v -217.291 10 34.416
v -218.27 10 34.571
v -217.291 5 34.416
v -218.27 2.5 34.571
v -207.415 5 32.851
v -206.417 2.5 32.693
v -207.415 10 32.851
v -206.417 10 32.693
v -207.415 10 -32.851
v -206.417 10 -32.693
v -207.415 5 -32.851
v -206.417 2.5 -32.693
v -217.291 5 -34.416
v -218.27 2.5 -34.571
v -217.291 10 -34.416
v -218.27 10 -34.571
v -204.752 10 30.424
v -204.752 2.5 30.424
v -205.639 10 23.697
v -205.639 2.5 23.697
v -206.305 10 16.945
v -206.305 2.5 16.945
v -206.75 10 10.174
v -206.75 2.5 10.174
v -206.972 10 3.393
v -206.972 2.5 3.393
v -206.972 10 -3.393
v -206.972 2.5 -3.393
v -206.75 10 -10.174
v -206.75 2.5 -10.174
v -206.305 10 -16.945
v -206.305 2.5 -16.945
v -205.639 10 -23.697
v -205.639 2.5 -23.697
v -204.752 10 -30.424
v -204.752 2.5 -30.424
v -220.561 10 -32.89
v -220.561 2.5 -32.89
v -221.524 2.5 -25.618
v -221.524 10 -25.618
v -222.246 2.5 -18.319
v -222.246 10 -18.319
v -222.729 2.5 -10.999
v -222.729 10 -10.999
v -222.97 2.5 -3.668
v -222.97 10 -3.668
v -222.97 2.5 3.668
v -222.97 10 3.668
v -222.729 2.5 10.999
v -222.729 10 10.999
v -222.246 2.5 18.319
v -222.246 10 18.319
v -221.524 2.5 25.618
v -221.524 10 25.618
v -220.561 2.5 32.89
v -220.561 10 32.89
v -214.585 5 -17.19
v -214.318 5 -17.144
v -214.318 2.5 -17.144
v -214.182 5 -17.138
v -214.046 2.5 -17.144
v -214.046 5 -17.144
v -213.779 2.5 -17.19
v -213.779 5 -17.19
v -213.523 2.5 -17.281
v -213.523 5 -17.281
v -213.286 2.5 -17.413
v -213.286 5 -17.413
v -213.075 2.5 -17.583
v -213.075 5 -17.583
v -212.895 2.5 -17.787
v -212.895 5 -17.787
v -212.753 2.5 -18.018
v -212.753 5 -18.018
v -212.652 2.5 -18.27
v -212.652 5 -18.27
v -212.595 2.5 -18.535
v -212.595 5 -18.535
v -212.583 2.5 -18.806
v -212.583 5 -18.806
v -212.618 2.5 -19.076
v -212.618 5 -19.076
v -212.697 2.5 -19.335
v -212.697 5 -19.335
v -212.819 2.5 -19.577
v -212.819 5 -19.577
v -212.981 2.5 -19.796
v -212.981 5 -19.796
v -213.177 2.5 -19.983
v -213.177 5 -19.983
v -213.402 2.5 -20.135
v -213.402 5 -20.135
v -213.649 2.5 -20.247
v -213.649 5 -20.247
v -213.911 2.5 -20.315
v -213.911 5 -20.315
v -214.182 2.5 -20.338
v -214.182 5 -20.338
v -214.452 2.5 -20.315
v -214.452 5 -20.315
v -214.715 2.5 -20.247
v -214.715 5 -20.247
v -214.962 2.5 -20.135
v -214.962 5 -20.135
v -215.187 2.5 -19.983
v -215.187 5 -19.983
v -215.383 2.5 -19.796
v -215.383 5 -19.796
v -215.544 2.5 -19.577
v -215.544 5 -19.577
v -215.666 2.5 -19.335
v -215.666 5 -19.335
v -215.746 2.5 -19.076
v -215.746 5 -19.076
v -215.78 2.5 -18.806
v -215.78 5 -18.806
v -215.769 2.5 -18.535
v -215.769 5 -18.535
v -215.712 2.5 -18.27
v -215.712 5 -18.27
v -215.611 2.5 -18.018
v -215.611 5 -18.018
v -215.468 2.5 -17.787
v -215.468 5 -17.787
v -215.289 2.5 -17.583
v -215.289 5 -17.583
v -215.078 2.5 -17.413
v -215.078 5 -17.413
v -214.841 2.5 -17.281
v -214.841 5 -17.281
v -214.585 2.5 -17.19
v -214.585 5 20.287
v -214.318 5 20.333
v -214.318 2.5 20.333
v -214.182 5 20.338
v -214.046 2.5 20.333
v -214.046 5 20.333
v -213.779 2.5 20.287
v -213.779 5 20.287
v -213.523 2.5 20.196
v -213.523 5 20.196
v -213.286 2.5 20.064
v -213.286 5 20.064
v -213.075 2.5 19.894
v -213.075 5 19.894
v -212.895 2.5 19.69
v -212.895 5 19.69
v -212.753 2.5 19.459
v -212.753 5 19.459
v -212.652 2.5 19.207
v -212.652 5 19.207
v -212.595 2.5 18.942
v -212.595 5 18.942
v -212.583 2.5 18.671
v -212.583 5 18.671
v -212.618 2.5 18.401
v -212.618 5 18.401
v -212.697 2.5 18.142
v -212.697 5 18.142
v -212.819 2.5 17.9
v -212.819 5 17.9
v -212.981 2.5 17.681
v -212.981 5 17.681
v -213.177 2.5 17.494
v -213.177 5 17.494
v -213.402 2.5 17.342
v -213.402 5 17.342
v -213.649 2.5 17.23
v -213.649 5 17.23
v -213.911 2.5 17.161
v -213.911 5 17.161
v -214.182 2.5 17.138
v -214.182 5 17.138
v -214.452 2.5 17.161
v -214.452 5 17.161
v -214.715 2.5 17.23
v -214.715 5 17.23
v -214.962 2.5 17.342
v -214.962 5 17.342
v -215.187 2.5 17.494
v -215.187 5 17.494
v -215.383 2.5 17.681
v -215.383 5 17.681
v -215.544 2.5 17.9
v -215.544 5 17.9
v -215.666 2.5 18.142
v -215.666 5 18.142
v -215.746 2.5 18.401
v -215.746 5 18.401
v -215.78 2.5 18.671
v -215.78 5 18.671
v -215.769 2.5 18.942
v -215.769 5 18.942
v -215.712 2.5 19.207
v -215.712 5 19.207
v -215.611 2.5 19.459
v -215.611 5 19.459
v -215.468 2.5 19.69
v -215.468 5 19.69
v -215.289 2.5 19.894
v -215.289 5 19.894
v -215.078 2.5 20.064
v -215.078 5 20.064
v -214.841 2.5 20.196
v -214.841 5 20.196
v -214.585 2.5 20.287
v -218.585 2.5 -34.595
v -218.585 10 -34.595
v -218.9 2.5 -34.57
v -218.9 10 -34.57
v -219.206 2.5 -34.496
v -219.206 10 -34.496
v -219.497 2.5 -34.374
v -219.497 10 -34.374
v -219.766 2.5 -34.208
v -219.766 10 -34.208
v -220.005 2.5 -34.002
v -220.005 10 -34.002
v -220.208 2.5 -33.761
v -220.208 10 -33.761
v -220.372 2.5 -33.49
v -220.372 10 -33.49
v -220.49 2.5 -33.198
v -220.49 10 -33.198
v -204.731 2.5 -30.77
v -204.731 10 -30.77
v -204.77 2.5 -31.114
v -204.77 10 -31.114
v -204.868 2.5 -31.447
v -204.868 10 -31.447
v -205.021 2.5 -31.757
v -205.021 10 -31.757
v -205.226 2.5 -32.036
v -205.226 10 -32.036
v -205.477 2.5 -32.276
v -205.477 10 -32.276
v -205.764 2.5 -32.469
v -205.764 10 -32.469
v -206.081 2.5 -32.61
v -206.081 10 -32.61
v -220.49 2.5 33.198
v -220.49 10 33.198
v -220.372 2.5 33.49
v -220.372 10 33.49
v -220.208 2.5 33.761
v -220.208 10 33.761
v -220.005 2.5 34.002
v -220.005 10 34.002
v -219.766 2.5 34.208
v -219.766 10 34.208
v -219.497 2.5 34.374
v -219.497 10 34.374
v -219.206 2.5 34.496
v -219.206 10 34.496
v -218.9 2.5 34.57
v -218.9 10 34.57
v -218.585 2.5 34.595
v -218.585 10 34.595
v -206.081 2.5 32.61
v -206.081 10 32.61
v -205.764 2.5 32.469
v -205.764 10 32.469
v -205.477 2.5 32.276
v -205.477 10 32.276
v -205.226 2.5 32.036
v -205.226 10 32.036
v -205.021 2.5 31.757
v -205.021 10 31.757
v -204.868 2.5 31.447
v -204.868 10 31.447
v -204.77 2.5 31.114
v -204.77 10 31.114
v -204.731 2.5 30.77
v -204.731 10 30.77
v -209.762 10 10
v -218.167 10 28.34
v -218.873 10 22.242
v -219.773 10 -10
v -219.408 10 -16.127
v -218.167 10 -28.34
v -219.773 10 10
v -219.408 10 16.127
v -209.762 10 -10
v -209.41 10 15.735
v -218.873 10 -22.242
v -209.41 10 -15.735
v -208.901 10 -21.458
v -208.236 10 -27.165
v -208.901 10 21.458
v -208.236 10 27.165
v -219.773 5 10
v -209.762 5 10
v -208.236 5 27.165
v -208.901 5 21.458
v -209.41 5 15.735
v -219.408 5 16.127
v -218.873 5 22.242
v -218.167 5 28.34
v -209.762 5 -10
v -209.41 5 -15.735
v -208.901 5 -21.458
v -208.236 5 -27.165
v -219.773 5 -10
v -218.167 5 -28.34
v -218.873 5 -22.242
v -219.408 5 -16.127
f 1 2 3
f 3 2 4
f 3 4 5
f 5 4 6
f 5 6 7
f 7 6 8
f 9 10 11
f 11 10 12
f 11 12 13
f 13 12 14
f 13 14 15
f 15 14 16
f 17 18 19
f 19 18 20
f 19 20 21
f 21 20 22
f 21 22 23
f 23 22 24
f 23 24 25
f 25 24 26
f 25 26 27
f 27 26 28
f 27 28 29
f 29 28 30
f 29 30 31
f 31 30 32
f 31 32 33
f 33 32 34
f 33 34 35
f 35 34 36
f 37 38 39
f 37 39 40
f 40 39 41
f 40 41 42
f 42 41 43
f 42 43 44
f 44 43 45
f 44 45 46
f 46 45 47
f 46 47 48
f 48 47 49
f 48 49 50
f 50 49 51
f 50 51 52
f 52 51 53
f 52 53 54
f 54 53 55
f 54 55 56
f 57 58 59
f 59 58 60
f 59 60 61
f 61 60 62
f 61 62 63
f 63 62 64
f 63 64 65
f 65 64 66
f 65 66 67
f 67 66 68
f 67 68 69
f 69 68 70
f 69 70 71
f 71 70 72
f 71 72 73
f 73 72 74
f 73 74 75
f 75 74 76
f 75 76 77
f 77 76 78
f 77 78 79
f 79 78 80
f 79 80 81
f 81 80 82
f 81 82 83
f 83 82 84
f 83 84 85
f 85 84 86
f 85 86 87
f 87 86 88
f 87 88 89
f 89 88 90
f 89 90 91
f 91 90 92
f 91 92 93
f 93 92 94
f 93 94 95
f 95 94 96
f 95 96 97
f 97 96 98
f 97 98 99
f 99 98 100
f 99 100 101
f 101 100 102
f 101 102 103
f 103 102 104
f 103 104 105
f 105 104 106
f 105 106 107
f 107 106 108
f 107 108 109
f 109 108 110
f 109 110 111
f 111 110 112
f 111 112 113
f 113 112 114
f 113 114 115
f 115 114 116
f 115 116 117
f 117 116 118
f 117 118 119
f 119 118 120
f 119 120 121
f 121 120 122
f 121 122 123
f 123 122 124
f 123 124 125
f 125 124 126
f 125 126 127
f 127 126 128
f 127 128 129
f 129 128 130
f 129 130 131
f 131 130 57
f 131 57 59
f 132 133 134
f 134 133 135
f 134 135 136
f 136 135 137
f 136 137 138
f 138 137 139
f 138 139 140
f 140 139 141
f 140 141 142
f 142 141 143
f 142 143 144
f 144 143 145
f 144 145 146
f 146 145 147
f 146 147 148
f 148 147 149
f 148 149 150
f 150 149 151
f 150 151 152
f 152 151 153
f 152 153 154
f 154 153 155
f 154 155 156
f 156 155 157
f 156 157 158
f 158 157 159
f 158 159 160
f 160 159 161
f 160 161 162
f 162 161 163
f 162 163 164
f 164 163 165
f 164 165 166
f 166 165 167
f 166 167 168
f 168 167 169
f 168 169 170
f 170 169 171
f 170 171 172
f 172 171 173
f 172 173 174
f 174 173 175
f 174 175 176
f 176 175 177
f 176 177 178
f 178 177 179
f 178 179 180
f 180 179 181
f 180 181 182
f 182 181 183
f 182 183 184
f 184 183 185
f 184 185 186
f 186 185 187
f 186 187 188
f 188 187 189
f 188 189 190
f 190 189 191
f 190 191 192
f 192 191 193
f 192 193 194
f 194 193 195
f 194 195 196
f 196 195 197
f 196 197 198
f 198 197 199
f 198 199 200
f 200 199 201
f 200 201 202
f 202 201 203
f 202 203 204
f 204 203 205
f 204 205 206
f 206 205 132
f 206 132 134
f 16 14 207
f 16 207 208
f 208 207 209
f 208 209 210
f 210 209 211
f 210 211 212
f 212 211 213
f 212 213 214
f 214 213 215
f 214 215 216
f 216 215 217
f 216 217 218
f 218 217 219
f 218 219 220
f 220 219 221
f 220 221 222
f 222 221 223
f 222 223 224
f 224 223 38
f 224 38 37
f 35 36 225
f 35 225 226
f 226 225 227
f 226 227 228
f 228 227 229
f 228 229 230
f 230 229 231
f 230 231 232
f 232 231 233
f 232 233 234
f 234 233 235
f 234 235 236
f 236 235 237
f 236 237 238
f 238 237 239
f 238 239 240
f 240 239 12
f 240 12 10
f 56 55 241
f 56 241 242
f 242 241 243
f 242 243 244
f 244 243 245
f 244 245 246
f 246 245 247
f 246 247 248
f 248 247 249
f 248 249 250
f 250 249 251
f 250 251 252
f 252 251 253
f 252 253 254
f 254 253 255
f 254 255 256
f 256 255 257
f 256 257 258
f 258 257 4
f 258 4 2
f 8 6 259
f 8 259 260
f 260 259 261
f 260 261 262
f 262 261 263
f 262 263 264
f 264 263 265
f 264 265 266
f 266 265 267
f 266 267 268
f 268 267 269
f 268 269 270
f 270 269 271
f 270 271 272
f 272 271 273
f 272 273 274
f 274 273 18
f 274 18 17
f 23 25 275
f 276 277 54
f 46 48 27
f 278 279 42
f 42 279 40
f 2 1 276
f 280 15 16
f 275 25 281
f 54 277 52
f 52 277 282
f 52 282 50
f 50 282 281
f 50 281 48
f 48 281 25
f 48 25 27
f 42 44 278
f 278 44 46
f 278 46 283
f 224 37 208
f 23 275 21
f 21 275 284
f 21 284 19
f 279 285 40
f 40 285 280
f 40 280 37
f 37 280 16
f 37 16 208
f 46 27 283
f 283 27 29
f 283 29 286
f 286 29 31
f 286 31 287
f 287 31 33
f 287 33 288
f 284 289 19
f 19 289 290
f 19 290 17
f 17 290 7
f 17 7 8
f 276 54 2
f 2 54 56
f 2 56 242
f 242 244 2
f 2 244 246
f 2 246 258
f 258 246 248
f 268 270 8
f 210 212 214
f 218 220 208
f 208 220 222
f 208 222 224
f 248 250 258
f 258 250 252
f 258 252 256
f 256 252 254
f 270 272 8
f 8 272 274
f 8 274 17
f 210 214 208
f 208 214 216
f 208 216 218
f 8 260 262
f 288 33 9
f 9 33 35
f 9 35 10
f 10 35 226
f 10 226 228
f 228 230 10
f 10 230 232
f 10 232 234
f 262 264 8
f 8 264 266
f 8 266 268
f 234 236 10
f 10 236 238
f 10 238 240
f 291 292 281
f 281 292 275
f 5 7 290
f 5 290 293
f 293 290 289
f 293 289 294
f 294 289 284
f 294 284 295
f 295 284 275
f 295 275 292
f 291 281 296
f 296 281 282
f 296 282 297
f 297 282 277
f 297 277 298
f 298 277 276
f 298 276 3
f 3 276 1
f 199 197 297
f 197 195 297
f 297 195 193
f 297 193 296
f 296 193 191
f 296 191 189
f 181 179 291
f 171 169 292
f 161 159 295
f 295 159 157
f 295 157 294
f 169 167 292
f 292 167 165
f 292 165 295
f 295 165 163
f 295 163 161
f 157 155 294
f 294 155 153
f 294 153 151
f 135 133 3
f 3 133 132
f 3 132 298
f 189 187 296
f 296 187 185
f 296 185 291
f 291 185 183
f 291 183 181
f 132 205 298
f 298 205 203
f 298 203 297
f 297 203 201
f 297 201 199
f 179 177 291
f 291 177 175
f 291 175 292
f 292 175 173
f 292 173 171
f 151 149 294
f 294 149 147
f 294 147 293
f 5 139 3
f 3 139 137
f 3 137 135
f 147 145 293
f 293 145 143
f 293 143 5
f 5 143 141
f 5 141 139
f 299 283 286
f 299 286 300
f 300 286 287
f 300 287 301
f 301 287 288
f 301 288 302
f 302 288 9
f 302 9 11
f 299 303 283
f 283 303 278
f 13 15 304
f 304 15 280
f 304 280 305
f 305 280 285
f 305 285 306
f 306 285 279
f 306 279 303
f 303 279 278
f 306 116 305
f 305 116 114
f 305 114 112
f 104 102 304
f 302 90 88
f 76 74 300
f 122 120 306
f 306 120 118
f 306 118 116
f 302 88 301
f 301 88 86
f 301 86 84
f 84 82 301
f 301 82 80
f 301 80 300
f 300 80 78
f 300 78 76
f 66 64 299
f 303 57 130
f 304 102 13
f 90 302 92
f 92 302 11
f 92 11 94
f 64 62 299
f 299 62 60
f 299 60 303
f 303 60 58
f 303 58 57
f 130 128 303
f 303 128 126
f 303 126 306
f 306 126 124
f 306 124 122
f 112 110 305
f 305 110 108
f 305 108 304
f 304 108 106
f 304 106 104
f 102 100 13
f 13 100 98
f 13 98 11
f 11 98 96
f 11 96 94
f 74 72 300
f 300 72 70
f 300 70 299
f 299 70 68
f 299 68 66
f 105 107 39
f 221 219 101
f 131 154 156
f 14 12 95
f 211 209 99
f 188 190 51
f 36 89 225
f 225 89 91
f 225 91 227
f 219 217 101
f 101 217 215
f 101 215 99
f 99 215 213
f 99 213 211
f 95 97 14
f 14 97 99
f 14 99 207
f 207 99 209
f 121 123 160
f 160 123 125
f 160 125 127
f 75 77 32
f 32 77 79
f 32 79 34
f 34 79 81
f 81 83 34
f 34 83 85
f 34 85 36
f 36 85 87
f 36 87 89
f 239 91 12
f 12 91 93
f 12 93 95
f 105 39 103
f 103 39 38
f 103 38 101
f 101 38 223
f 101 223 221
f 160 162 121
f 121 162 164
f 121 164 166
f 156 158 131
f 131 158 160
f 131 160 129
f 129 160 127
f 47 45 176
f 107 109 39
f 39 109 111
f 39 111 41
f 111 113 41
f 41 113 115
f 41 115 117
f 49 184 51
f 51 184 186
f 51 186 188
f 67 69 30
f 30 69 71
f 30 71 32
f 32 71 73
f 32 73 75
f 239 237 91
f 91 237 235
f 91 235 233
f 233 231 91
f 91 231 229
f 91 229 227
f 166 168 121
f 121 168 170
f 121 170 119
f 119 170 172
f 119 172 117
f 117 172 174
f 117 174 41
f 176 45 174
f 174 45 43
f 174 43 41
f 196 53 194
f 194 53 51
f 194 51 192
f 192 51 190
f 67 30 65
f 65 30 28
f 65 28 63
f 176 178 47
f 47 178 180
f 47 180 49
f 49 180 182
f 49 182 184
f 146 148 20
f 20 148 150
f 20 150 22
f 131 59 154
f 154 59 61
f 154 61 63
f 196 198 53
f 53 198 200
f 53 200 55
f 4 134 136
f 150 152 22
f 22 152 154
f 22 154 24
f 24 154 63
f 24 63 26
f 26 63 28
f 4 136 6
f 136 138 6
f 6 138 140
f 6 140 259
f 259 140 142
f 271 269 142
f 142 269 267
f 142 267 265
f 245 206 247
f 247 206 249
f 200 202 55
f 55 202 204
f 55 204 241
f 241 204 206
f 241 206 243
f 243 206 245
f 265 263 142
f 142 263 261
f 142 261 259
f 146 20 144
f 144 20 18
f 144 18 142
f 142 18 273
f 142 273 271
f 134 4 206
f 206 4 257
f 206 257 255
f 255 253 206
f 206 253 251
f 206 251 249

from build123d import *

# Parameters (mm, degrees)
BOSS_EXTRUDE1_DEPTH        = 10
CUT_EXTRUDE1_DEPTH         = 5
F_3_2_3_2_DIAMETER_HOLE1_D = 3.2
FILLET1_R                  = 2
CUT_EXTRUDE2_START         = -2.5
CUT_EXTRUDE2_DEPTH         = 2.5


with BuildPart() as part:
    # Sketch1 → Boss-Extrude1 (new body)
    with BuildSketch(Plane(origin=(0, 0, 0), x_dir=(1, 0, 0), z_dir=(0, 1, 0))):
        with BuildLine():
            ThreePointArc((-207.414551525, 32.851237658), (-210, 0), (-207.414551525, -32.851237658))
            Line((-207.414551525, -32.851237658), (-217.291434931, -34.415582309))
            ThreePointArc((-217.291434931, -34.415582309), (-220, 0), (-217.291434931, 34.415582309))
            Line((-217.291434931, 34.415582309), (-207.414551525, 32.851237658))
        make_face()
        with BuildLine():
            ThreePointArc((-217.291434931, -34.415582309), (-220, 0), (-217.291434931, 34.415582309))
            Line((-217.291434931, 34.415582309), (-220.254499953, 34.884885704))
            ThreePointArc((-220.254499953, 34.884885704), (-223, 0), (-220.254499953, -34.884885704))
            Line((-220.254499953, -34.884885704), (-217.291434931, -34.415582309))
        make_face()
        with BuildLine():
            Line((-204.451486503, 32.381934263), (-207.414551525, 32.851237658))
            ThreePointArc((-207.414551525, 32.851237658), (-210, 0), (-207.414551525, -32.851237658))
            Line((-207.414551525, -32.851237658), (-204.451486503, -32.381934263))
            ThreePointArc((-204.451486503, -32.381934263), (-207, 0), (-204.451486503, 32.381934263))
        make_face()
    extrude(amount=BOSS_EXTRUDE1_DEPTH)

    # Sketch15 → Cut-Extrude1 (cut)
    with BuildSketch(Plane(origin=(0, 10, 0), x_dir=(1, 0, 0), z_dir=(0, 1, 0))):
        with BuildLine():
            Line((-219.772609758, 10), (-209.761769634, 10))
            ThreePointArc((-209.761769634, 10), (-208.900850883, 21.457737542), (-207.414551525, 32.851237658))
            Line((-207.414551525, 32.851237658), (-217.291434931, 34.415582309))
            ThreePointArc((-217.291434931, 34.415582309), (-218.872736893, 22.242415451), (-219.772609758, 10))
        make_face()
        with BuildLine():
            ThreePointArc((-207.414551525, -32.851237658), (-208.900850883, -21.457737542), (-209.761769634, -10))
            Line((-209.761769634, -10), (-219.772609758, -10))
            ThreePointArc((-219.772609758, -10), (-218.872736893, -22.242415451), (-217.291434931, -34.415582309))
            Line((-217.291434931, -34.415582309), (-207.414551525, -32.851237658))
        make_face()
    extrude(amount=-CUT_EXTRUDE1_DEPTH, mode=Mode.SUBTRACT)

    # Ø3.2 (3.2) Diameter Hole1 (through all)
    with Locations(Plane(origin=(0, 0, 0), x_dir=(-1, 0, 0), z_dir=(0, -1, 0))):
        with Locations((214.18186009, -18.738484691), (214.18186009, 18.738484691)):
            Hole(F_3_2_3_2_DIAMETER_HOLE1_D / 2)

    # Fillet1
    fillet1_edges = [part.edges().sort_by_distance(p)[0] for p in [
        (-220.254499953, 5, 34.884885704),
        (-220.254499953, 5, -34.884885704),
        (-204.451486503, 5, -32.381934263),
        (-204.451486503, 5, 32.381934263),
    ]]
    fillet(fillet1_edges, radius=FILLET1_R)

    # Sketch19 → Cut-Extrude2 (cut)
    with BuildSketch(Plane.XZ.offset(CUT_EXTRUDE2_START)):
        with BuildLine():
            Line((-218.270184732, -34.570601048), (-206.417411405, -32.693306179))
            ThreePointArc((-206.417411405, -32.693306179), (-205.117889671, -31.901228423), (-204.75200014, -30.423978019))
            ThreePointArc((-204.75200014, -30.423978019), (-207, 0), (-204.75200014, 30.423978019))
            ThreePointArc((-204.75200014, 30.423978019), (-205.117889671, 31.901228423), (-206.417411405, 32.693306179))
            Line((-206.417411405, 32.693306179), (-218.270184732, 34.570601048))
            ThreePointArc((-218.270184732, 34.570601048), (-219.765933628, 34.207922413), (-220.561180845, 32.890203773))
            ThreePointArc((-220.561180845, 32.890203773), (-223, 0), (-220.561180845, -32.890203773))
            ThreePointArc((-220.561180845, -32.890203773), (-219.765933628, -34.207922413), (-218.270184732, -34.570601048))
        make_face()
    extrude(amount=CUT_EXTRUDE2_DEPTH, mode=Mode.SUBTRACT)


solid = part.part
